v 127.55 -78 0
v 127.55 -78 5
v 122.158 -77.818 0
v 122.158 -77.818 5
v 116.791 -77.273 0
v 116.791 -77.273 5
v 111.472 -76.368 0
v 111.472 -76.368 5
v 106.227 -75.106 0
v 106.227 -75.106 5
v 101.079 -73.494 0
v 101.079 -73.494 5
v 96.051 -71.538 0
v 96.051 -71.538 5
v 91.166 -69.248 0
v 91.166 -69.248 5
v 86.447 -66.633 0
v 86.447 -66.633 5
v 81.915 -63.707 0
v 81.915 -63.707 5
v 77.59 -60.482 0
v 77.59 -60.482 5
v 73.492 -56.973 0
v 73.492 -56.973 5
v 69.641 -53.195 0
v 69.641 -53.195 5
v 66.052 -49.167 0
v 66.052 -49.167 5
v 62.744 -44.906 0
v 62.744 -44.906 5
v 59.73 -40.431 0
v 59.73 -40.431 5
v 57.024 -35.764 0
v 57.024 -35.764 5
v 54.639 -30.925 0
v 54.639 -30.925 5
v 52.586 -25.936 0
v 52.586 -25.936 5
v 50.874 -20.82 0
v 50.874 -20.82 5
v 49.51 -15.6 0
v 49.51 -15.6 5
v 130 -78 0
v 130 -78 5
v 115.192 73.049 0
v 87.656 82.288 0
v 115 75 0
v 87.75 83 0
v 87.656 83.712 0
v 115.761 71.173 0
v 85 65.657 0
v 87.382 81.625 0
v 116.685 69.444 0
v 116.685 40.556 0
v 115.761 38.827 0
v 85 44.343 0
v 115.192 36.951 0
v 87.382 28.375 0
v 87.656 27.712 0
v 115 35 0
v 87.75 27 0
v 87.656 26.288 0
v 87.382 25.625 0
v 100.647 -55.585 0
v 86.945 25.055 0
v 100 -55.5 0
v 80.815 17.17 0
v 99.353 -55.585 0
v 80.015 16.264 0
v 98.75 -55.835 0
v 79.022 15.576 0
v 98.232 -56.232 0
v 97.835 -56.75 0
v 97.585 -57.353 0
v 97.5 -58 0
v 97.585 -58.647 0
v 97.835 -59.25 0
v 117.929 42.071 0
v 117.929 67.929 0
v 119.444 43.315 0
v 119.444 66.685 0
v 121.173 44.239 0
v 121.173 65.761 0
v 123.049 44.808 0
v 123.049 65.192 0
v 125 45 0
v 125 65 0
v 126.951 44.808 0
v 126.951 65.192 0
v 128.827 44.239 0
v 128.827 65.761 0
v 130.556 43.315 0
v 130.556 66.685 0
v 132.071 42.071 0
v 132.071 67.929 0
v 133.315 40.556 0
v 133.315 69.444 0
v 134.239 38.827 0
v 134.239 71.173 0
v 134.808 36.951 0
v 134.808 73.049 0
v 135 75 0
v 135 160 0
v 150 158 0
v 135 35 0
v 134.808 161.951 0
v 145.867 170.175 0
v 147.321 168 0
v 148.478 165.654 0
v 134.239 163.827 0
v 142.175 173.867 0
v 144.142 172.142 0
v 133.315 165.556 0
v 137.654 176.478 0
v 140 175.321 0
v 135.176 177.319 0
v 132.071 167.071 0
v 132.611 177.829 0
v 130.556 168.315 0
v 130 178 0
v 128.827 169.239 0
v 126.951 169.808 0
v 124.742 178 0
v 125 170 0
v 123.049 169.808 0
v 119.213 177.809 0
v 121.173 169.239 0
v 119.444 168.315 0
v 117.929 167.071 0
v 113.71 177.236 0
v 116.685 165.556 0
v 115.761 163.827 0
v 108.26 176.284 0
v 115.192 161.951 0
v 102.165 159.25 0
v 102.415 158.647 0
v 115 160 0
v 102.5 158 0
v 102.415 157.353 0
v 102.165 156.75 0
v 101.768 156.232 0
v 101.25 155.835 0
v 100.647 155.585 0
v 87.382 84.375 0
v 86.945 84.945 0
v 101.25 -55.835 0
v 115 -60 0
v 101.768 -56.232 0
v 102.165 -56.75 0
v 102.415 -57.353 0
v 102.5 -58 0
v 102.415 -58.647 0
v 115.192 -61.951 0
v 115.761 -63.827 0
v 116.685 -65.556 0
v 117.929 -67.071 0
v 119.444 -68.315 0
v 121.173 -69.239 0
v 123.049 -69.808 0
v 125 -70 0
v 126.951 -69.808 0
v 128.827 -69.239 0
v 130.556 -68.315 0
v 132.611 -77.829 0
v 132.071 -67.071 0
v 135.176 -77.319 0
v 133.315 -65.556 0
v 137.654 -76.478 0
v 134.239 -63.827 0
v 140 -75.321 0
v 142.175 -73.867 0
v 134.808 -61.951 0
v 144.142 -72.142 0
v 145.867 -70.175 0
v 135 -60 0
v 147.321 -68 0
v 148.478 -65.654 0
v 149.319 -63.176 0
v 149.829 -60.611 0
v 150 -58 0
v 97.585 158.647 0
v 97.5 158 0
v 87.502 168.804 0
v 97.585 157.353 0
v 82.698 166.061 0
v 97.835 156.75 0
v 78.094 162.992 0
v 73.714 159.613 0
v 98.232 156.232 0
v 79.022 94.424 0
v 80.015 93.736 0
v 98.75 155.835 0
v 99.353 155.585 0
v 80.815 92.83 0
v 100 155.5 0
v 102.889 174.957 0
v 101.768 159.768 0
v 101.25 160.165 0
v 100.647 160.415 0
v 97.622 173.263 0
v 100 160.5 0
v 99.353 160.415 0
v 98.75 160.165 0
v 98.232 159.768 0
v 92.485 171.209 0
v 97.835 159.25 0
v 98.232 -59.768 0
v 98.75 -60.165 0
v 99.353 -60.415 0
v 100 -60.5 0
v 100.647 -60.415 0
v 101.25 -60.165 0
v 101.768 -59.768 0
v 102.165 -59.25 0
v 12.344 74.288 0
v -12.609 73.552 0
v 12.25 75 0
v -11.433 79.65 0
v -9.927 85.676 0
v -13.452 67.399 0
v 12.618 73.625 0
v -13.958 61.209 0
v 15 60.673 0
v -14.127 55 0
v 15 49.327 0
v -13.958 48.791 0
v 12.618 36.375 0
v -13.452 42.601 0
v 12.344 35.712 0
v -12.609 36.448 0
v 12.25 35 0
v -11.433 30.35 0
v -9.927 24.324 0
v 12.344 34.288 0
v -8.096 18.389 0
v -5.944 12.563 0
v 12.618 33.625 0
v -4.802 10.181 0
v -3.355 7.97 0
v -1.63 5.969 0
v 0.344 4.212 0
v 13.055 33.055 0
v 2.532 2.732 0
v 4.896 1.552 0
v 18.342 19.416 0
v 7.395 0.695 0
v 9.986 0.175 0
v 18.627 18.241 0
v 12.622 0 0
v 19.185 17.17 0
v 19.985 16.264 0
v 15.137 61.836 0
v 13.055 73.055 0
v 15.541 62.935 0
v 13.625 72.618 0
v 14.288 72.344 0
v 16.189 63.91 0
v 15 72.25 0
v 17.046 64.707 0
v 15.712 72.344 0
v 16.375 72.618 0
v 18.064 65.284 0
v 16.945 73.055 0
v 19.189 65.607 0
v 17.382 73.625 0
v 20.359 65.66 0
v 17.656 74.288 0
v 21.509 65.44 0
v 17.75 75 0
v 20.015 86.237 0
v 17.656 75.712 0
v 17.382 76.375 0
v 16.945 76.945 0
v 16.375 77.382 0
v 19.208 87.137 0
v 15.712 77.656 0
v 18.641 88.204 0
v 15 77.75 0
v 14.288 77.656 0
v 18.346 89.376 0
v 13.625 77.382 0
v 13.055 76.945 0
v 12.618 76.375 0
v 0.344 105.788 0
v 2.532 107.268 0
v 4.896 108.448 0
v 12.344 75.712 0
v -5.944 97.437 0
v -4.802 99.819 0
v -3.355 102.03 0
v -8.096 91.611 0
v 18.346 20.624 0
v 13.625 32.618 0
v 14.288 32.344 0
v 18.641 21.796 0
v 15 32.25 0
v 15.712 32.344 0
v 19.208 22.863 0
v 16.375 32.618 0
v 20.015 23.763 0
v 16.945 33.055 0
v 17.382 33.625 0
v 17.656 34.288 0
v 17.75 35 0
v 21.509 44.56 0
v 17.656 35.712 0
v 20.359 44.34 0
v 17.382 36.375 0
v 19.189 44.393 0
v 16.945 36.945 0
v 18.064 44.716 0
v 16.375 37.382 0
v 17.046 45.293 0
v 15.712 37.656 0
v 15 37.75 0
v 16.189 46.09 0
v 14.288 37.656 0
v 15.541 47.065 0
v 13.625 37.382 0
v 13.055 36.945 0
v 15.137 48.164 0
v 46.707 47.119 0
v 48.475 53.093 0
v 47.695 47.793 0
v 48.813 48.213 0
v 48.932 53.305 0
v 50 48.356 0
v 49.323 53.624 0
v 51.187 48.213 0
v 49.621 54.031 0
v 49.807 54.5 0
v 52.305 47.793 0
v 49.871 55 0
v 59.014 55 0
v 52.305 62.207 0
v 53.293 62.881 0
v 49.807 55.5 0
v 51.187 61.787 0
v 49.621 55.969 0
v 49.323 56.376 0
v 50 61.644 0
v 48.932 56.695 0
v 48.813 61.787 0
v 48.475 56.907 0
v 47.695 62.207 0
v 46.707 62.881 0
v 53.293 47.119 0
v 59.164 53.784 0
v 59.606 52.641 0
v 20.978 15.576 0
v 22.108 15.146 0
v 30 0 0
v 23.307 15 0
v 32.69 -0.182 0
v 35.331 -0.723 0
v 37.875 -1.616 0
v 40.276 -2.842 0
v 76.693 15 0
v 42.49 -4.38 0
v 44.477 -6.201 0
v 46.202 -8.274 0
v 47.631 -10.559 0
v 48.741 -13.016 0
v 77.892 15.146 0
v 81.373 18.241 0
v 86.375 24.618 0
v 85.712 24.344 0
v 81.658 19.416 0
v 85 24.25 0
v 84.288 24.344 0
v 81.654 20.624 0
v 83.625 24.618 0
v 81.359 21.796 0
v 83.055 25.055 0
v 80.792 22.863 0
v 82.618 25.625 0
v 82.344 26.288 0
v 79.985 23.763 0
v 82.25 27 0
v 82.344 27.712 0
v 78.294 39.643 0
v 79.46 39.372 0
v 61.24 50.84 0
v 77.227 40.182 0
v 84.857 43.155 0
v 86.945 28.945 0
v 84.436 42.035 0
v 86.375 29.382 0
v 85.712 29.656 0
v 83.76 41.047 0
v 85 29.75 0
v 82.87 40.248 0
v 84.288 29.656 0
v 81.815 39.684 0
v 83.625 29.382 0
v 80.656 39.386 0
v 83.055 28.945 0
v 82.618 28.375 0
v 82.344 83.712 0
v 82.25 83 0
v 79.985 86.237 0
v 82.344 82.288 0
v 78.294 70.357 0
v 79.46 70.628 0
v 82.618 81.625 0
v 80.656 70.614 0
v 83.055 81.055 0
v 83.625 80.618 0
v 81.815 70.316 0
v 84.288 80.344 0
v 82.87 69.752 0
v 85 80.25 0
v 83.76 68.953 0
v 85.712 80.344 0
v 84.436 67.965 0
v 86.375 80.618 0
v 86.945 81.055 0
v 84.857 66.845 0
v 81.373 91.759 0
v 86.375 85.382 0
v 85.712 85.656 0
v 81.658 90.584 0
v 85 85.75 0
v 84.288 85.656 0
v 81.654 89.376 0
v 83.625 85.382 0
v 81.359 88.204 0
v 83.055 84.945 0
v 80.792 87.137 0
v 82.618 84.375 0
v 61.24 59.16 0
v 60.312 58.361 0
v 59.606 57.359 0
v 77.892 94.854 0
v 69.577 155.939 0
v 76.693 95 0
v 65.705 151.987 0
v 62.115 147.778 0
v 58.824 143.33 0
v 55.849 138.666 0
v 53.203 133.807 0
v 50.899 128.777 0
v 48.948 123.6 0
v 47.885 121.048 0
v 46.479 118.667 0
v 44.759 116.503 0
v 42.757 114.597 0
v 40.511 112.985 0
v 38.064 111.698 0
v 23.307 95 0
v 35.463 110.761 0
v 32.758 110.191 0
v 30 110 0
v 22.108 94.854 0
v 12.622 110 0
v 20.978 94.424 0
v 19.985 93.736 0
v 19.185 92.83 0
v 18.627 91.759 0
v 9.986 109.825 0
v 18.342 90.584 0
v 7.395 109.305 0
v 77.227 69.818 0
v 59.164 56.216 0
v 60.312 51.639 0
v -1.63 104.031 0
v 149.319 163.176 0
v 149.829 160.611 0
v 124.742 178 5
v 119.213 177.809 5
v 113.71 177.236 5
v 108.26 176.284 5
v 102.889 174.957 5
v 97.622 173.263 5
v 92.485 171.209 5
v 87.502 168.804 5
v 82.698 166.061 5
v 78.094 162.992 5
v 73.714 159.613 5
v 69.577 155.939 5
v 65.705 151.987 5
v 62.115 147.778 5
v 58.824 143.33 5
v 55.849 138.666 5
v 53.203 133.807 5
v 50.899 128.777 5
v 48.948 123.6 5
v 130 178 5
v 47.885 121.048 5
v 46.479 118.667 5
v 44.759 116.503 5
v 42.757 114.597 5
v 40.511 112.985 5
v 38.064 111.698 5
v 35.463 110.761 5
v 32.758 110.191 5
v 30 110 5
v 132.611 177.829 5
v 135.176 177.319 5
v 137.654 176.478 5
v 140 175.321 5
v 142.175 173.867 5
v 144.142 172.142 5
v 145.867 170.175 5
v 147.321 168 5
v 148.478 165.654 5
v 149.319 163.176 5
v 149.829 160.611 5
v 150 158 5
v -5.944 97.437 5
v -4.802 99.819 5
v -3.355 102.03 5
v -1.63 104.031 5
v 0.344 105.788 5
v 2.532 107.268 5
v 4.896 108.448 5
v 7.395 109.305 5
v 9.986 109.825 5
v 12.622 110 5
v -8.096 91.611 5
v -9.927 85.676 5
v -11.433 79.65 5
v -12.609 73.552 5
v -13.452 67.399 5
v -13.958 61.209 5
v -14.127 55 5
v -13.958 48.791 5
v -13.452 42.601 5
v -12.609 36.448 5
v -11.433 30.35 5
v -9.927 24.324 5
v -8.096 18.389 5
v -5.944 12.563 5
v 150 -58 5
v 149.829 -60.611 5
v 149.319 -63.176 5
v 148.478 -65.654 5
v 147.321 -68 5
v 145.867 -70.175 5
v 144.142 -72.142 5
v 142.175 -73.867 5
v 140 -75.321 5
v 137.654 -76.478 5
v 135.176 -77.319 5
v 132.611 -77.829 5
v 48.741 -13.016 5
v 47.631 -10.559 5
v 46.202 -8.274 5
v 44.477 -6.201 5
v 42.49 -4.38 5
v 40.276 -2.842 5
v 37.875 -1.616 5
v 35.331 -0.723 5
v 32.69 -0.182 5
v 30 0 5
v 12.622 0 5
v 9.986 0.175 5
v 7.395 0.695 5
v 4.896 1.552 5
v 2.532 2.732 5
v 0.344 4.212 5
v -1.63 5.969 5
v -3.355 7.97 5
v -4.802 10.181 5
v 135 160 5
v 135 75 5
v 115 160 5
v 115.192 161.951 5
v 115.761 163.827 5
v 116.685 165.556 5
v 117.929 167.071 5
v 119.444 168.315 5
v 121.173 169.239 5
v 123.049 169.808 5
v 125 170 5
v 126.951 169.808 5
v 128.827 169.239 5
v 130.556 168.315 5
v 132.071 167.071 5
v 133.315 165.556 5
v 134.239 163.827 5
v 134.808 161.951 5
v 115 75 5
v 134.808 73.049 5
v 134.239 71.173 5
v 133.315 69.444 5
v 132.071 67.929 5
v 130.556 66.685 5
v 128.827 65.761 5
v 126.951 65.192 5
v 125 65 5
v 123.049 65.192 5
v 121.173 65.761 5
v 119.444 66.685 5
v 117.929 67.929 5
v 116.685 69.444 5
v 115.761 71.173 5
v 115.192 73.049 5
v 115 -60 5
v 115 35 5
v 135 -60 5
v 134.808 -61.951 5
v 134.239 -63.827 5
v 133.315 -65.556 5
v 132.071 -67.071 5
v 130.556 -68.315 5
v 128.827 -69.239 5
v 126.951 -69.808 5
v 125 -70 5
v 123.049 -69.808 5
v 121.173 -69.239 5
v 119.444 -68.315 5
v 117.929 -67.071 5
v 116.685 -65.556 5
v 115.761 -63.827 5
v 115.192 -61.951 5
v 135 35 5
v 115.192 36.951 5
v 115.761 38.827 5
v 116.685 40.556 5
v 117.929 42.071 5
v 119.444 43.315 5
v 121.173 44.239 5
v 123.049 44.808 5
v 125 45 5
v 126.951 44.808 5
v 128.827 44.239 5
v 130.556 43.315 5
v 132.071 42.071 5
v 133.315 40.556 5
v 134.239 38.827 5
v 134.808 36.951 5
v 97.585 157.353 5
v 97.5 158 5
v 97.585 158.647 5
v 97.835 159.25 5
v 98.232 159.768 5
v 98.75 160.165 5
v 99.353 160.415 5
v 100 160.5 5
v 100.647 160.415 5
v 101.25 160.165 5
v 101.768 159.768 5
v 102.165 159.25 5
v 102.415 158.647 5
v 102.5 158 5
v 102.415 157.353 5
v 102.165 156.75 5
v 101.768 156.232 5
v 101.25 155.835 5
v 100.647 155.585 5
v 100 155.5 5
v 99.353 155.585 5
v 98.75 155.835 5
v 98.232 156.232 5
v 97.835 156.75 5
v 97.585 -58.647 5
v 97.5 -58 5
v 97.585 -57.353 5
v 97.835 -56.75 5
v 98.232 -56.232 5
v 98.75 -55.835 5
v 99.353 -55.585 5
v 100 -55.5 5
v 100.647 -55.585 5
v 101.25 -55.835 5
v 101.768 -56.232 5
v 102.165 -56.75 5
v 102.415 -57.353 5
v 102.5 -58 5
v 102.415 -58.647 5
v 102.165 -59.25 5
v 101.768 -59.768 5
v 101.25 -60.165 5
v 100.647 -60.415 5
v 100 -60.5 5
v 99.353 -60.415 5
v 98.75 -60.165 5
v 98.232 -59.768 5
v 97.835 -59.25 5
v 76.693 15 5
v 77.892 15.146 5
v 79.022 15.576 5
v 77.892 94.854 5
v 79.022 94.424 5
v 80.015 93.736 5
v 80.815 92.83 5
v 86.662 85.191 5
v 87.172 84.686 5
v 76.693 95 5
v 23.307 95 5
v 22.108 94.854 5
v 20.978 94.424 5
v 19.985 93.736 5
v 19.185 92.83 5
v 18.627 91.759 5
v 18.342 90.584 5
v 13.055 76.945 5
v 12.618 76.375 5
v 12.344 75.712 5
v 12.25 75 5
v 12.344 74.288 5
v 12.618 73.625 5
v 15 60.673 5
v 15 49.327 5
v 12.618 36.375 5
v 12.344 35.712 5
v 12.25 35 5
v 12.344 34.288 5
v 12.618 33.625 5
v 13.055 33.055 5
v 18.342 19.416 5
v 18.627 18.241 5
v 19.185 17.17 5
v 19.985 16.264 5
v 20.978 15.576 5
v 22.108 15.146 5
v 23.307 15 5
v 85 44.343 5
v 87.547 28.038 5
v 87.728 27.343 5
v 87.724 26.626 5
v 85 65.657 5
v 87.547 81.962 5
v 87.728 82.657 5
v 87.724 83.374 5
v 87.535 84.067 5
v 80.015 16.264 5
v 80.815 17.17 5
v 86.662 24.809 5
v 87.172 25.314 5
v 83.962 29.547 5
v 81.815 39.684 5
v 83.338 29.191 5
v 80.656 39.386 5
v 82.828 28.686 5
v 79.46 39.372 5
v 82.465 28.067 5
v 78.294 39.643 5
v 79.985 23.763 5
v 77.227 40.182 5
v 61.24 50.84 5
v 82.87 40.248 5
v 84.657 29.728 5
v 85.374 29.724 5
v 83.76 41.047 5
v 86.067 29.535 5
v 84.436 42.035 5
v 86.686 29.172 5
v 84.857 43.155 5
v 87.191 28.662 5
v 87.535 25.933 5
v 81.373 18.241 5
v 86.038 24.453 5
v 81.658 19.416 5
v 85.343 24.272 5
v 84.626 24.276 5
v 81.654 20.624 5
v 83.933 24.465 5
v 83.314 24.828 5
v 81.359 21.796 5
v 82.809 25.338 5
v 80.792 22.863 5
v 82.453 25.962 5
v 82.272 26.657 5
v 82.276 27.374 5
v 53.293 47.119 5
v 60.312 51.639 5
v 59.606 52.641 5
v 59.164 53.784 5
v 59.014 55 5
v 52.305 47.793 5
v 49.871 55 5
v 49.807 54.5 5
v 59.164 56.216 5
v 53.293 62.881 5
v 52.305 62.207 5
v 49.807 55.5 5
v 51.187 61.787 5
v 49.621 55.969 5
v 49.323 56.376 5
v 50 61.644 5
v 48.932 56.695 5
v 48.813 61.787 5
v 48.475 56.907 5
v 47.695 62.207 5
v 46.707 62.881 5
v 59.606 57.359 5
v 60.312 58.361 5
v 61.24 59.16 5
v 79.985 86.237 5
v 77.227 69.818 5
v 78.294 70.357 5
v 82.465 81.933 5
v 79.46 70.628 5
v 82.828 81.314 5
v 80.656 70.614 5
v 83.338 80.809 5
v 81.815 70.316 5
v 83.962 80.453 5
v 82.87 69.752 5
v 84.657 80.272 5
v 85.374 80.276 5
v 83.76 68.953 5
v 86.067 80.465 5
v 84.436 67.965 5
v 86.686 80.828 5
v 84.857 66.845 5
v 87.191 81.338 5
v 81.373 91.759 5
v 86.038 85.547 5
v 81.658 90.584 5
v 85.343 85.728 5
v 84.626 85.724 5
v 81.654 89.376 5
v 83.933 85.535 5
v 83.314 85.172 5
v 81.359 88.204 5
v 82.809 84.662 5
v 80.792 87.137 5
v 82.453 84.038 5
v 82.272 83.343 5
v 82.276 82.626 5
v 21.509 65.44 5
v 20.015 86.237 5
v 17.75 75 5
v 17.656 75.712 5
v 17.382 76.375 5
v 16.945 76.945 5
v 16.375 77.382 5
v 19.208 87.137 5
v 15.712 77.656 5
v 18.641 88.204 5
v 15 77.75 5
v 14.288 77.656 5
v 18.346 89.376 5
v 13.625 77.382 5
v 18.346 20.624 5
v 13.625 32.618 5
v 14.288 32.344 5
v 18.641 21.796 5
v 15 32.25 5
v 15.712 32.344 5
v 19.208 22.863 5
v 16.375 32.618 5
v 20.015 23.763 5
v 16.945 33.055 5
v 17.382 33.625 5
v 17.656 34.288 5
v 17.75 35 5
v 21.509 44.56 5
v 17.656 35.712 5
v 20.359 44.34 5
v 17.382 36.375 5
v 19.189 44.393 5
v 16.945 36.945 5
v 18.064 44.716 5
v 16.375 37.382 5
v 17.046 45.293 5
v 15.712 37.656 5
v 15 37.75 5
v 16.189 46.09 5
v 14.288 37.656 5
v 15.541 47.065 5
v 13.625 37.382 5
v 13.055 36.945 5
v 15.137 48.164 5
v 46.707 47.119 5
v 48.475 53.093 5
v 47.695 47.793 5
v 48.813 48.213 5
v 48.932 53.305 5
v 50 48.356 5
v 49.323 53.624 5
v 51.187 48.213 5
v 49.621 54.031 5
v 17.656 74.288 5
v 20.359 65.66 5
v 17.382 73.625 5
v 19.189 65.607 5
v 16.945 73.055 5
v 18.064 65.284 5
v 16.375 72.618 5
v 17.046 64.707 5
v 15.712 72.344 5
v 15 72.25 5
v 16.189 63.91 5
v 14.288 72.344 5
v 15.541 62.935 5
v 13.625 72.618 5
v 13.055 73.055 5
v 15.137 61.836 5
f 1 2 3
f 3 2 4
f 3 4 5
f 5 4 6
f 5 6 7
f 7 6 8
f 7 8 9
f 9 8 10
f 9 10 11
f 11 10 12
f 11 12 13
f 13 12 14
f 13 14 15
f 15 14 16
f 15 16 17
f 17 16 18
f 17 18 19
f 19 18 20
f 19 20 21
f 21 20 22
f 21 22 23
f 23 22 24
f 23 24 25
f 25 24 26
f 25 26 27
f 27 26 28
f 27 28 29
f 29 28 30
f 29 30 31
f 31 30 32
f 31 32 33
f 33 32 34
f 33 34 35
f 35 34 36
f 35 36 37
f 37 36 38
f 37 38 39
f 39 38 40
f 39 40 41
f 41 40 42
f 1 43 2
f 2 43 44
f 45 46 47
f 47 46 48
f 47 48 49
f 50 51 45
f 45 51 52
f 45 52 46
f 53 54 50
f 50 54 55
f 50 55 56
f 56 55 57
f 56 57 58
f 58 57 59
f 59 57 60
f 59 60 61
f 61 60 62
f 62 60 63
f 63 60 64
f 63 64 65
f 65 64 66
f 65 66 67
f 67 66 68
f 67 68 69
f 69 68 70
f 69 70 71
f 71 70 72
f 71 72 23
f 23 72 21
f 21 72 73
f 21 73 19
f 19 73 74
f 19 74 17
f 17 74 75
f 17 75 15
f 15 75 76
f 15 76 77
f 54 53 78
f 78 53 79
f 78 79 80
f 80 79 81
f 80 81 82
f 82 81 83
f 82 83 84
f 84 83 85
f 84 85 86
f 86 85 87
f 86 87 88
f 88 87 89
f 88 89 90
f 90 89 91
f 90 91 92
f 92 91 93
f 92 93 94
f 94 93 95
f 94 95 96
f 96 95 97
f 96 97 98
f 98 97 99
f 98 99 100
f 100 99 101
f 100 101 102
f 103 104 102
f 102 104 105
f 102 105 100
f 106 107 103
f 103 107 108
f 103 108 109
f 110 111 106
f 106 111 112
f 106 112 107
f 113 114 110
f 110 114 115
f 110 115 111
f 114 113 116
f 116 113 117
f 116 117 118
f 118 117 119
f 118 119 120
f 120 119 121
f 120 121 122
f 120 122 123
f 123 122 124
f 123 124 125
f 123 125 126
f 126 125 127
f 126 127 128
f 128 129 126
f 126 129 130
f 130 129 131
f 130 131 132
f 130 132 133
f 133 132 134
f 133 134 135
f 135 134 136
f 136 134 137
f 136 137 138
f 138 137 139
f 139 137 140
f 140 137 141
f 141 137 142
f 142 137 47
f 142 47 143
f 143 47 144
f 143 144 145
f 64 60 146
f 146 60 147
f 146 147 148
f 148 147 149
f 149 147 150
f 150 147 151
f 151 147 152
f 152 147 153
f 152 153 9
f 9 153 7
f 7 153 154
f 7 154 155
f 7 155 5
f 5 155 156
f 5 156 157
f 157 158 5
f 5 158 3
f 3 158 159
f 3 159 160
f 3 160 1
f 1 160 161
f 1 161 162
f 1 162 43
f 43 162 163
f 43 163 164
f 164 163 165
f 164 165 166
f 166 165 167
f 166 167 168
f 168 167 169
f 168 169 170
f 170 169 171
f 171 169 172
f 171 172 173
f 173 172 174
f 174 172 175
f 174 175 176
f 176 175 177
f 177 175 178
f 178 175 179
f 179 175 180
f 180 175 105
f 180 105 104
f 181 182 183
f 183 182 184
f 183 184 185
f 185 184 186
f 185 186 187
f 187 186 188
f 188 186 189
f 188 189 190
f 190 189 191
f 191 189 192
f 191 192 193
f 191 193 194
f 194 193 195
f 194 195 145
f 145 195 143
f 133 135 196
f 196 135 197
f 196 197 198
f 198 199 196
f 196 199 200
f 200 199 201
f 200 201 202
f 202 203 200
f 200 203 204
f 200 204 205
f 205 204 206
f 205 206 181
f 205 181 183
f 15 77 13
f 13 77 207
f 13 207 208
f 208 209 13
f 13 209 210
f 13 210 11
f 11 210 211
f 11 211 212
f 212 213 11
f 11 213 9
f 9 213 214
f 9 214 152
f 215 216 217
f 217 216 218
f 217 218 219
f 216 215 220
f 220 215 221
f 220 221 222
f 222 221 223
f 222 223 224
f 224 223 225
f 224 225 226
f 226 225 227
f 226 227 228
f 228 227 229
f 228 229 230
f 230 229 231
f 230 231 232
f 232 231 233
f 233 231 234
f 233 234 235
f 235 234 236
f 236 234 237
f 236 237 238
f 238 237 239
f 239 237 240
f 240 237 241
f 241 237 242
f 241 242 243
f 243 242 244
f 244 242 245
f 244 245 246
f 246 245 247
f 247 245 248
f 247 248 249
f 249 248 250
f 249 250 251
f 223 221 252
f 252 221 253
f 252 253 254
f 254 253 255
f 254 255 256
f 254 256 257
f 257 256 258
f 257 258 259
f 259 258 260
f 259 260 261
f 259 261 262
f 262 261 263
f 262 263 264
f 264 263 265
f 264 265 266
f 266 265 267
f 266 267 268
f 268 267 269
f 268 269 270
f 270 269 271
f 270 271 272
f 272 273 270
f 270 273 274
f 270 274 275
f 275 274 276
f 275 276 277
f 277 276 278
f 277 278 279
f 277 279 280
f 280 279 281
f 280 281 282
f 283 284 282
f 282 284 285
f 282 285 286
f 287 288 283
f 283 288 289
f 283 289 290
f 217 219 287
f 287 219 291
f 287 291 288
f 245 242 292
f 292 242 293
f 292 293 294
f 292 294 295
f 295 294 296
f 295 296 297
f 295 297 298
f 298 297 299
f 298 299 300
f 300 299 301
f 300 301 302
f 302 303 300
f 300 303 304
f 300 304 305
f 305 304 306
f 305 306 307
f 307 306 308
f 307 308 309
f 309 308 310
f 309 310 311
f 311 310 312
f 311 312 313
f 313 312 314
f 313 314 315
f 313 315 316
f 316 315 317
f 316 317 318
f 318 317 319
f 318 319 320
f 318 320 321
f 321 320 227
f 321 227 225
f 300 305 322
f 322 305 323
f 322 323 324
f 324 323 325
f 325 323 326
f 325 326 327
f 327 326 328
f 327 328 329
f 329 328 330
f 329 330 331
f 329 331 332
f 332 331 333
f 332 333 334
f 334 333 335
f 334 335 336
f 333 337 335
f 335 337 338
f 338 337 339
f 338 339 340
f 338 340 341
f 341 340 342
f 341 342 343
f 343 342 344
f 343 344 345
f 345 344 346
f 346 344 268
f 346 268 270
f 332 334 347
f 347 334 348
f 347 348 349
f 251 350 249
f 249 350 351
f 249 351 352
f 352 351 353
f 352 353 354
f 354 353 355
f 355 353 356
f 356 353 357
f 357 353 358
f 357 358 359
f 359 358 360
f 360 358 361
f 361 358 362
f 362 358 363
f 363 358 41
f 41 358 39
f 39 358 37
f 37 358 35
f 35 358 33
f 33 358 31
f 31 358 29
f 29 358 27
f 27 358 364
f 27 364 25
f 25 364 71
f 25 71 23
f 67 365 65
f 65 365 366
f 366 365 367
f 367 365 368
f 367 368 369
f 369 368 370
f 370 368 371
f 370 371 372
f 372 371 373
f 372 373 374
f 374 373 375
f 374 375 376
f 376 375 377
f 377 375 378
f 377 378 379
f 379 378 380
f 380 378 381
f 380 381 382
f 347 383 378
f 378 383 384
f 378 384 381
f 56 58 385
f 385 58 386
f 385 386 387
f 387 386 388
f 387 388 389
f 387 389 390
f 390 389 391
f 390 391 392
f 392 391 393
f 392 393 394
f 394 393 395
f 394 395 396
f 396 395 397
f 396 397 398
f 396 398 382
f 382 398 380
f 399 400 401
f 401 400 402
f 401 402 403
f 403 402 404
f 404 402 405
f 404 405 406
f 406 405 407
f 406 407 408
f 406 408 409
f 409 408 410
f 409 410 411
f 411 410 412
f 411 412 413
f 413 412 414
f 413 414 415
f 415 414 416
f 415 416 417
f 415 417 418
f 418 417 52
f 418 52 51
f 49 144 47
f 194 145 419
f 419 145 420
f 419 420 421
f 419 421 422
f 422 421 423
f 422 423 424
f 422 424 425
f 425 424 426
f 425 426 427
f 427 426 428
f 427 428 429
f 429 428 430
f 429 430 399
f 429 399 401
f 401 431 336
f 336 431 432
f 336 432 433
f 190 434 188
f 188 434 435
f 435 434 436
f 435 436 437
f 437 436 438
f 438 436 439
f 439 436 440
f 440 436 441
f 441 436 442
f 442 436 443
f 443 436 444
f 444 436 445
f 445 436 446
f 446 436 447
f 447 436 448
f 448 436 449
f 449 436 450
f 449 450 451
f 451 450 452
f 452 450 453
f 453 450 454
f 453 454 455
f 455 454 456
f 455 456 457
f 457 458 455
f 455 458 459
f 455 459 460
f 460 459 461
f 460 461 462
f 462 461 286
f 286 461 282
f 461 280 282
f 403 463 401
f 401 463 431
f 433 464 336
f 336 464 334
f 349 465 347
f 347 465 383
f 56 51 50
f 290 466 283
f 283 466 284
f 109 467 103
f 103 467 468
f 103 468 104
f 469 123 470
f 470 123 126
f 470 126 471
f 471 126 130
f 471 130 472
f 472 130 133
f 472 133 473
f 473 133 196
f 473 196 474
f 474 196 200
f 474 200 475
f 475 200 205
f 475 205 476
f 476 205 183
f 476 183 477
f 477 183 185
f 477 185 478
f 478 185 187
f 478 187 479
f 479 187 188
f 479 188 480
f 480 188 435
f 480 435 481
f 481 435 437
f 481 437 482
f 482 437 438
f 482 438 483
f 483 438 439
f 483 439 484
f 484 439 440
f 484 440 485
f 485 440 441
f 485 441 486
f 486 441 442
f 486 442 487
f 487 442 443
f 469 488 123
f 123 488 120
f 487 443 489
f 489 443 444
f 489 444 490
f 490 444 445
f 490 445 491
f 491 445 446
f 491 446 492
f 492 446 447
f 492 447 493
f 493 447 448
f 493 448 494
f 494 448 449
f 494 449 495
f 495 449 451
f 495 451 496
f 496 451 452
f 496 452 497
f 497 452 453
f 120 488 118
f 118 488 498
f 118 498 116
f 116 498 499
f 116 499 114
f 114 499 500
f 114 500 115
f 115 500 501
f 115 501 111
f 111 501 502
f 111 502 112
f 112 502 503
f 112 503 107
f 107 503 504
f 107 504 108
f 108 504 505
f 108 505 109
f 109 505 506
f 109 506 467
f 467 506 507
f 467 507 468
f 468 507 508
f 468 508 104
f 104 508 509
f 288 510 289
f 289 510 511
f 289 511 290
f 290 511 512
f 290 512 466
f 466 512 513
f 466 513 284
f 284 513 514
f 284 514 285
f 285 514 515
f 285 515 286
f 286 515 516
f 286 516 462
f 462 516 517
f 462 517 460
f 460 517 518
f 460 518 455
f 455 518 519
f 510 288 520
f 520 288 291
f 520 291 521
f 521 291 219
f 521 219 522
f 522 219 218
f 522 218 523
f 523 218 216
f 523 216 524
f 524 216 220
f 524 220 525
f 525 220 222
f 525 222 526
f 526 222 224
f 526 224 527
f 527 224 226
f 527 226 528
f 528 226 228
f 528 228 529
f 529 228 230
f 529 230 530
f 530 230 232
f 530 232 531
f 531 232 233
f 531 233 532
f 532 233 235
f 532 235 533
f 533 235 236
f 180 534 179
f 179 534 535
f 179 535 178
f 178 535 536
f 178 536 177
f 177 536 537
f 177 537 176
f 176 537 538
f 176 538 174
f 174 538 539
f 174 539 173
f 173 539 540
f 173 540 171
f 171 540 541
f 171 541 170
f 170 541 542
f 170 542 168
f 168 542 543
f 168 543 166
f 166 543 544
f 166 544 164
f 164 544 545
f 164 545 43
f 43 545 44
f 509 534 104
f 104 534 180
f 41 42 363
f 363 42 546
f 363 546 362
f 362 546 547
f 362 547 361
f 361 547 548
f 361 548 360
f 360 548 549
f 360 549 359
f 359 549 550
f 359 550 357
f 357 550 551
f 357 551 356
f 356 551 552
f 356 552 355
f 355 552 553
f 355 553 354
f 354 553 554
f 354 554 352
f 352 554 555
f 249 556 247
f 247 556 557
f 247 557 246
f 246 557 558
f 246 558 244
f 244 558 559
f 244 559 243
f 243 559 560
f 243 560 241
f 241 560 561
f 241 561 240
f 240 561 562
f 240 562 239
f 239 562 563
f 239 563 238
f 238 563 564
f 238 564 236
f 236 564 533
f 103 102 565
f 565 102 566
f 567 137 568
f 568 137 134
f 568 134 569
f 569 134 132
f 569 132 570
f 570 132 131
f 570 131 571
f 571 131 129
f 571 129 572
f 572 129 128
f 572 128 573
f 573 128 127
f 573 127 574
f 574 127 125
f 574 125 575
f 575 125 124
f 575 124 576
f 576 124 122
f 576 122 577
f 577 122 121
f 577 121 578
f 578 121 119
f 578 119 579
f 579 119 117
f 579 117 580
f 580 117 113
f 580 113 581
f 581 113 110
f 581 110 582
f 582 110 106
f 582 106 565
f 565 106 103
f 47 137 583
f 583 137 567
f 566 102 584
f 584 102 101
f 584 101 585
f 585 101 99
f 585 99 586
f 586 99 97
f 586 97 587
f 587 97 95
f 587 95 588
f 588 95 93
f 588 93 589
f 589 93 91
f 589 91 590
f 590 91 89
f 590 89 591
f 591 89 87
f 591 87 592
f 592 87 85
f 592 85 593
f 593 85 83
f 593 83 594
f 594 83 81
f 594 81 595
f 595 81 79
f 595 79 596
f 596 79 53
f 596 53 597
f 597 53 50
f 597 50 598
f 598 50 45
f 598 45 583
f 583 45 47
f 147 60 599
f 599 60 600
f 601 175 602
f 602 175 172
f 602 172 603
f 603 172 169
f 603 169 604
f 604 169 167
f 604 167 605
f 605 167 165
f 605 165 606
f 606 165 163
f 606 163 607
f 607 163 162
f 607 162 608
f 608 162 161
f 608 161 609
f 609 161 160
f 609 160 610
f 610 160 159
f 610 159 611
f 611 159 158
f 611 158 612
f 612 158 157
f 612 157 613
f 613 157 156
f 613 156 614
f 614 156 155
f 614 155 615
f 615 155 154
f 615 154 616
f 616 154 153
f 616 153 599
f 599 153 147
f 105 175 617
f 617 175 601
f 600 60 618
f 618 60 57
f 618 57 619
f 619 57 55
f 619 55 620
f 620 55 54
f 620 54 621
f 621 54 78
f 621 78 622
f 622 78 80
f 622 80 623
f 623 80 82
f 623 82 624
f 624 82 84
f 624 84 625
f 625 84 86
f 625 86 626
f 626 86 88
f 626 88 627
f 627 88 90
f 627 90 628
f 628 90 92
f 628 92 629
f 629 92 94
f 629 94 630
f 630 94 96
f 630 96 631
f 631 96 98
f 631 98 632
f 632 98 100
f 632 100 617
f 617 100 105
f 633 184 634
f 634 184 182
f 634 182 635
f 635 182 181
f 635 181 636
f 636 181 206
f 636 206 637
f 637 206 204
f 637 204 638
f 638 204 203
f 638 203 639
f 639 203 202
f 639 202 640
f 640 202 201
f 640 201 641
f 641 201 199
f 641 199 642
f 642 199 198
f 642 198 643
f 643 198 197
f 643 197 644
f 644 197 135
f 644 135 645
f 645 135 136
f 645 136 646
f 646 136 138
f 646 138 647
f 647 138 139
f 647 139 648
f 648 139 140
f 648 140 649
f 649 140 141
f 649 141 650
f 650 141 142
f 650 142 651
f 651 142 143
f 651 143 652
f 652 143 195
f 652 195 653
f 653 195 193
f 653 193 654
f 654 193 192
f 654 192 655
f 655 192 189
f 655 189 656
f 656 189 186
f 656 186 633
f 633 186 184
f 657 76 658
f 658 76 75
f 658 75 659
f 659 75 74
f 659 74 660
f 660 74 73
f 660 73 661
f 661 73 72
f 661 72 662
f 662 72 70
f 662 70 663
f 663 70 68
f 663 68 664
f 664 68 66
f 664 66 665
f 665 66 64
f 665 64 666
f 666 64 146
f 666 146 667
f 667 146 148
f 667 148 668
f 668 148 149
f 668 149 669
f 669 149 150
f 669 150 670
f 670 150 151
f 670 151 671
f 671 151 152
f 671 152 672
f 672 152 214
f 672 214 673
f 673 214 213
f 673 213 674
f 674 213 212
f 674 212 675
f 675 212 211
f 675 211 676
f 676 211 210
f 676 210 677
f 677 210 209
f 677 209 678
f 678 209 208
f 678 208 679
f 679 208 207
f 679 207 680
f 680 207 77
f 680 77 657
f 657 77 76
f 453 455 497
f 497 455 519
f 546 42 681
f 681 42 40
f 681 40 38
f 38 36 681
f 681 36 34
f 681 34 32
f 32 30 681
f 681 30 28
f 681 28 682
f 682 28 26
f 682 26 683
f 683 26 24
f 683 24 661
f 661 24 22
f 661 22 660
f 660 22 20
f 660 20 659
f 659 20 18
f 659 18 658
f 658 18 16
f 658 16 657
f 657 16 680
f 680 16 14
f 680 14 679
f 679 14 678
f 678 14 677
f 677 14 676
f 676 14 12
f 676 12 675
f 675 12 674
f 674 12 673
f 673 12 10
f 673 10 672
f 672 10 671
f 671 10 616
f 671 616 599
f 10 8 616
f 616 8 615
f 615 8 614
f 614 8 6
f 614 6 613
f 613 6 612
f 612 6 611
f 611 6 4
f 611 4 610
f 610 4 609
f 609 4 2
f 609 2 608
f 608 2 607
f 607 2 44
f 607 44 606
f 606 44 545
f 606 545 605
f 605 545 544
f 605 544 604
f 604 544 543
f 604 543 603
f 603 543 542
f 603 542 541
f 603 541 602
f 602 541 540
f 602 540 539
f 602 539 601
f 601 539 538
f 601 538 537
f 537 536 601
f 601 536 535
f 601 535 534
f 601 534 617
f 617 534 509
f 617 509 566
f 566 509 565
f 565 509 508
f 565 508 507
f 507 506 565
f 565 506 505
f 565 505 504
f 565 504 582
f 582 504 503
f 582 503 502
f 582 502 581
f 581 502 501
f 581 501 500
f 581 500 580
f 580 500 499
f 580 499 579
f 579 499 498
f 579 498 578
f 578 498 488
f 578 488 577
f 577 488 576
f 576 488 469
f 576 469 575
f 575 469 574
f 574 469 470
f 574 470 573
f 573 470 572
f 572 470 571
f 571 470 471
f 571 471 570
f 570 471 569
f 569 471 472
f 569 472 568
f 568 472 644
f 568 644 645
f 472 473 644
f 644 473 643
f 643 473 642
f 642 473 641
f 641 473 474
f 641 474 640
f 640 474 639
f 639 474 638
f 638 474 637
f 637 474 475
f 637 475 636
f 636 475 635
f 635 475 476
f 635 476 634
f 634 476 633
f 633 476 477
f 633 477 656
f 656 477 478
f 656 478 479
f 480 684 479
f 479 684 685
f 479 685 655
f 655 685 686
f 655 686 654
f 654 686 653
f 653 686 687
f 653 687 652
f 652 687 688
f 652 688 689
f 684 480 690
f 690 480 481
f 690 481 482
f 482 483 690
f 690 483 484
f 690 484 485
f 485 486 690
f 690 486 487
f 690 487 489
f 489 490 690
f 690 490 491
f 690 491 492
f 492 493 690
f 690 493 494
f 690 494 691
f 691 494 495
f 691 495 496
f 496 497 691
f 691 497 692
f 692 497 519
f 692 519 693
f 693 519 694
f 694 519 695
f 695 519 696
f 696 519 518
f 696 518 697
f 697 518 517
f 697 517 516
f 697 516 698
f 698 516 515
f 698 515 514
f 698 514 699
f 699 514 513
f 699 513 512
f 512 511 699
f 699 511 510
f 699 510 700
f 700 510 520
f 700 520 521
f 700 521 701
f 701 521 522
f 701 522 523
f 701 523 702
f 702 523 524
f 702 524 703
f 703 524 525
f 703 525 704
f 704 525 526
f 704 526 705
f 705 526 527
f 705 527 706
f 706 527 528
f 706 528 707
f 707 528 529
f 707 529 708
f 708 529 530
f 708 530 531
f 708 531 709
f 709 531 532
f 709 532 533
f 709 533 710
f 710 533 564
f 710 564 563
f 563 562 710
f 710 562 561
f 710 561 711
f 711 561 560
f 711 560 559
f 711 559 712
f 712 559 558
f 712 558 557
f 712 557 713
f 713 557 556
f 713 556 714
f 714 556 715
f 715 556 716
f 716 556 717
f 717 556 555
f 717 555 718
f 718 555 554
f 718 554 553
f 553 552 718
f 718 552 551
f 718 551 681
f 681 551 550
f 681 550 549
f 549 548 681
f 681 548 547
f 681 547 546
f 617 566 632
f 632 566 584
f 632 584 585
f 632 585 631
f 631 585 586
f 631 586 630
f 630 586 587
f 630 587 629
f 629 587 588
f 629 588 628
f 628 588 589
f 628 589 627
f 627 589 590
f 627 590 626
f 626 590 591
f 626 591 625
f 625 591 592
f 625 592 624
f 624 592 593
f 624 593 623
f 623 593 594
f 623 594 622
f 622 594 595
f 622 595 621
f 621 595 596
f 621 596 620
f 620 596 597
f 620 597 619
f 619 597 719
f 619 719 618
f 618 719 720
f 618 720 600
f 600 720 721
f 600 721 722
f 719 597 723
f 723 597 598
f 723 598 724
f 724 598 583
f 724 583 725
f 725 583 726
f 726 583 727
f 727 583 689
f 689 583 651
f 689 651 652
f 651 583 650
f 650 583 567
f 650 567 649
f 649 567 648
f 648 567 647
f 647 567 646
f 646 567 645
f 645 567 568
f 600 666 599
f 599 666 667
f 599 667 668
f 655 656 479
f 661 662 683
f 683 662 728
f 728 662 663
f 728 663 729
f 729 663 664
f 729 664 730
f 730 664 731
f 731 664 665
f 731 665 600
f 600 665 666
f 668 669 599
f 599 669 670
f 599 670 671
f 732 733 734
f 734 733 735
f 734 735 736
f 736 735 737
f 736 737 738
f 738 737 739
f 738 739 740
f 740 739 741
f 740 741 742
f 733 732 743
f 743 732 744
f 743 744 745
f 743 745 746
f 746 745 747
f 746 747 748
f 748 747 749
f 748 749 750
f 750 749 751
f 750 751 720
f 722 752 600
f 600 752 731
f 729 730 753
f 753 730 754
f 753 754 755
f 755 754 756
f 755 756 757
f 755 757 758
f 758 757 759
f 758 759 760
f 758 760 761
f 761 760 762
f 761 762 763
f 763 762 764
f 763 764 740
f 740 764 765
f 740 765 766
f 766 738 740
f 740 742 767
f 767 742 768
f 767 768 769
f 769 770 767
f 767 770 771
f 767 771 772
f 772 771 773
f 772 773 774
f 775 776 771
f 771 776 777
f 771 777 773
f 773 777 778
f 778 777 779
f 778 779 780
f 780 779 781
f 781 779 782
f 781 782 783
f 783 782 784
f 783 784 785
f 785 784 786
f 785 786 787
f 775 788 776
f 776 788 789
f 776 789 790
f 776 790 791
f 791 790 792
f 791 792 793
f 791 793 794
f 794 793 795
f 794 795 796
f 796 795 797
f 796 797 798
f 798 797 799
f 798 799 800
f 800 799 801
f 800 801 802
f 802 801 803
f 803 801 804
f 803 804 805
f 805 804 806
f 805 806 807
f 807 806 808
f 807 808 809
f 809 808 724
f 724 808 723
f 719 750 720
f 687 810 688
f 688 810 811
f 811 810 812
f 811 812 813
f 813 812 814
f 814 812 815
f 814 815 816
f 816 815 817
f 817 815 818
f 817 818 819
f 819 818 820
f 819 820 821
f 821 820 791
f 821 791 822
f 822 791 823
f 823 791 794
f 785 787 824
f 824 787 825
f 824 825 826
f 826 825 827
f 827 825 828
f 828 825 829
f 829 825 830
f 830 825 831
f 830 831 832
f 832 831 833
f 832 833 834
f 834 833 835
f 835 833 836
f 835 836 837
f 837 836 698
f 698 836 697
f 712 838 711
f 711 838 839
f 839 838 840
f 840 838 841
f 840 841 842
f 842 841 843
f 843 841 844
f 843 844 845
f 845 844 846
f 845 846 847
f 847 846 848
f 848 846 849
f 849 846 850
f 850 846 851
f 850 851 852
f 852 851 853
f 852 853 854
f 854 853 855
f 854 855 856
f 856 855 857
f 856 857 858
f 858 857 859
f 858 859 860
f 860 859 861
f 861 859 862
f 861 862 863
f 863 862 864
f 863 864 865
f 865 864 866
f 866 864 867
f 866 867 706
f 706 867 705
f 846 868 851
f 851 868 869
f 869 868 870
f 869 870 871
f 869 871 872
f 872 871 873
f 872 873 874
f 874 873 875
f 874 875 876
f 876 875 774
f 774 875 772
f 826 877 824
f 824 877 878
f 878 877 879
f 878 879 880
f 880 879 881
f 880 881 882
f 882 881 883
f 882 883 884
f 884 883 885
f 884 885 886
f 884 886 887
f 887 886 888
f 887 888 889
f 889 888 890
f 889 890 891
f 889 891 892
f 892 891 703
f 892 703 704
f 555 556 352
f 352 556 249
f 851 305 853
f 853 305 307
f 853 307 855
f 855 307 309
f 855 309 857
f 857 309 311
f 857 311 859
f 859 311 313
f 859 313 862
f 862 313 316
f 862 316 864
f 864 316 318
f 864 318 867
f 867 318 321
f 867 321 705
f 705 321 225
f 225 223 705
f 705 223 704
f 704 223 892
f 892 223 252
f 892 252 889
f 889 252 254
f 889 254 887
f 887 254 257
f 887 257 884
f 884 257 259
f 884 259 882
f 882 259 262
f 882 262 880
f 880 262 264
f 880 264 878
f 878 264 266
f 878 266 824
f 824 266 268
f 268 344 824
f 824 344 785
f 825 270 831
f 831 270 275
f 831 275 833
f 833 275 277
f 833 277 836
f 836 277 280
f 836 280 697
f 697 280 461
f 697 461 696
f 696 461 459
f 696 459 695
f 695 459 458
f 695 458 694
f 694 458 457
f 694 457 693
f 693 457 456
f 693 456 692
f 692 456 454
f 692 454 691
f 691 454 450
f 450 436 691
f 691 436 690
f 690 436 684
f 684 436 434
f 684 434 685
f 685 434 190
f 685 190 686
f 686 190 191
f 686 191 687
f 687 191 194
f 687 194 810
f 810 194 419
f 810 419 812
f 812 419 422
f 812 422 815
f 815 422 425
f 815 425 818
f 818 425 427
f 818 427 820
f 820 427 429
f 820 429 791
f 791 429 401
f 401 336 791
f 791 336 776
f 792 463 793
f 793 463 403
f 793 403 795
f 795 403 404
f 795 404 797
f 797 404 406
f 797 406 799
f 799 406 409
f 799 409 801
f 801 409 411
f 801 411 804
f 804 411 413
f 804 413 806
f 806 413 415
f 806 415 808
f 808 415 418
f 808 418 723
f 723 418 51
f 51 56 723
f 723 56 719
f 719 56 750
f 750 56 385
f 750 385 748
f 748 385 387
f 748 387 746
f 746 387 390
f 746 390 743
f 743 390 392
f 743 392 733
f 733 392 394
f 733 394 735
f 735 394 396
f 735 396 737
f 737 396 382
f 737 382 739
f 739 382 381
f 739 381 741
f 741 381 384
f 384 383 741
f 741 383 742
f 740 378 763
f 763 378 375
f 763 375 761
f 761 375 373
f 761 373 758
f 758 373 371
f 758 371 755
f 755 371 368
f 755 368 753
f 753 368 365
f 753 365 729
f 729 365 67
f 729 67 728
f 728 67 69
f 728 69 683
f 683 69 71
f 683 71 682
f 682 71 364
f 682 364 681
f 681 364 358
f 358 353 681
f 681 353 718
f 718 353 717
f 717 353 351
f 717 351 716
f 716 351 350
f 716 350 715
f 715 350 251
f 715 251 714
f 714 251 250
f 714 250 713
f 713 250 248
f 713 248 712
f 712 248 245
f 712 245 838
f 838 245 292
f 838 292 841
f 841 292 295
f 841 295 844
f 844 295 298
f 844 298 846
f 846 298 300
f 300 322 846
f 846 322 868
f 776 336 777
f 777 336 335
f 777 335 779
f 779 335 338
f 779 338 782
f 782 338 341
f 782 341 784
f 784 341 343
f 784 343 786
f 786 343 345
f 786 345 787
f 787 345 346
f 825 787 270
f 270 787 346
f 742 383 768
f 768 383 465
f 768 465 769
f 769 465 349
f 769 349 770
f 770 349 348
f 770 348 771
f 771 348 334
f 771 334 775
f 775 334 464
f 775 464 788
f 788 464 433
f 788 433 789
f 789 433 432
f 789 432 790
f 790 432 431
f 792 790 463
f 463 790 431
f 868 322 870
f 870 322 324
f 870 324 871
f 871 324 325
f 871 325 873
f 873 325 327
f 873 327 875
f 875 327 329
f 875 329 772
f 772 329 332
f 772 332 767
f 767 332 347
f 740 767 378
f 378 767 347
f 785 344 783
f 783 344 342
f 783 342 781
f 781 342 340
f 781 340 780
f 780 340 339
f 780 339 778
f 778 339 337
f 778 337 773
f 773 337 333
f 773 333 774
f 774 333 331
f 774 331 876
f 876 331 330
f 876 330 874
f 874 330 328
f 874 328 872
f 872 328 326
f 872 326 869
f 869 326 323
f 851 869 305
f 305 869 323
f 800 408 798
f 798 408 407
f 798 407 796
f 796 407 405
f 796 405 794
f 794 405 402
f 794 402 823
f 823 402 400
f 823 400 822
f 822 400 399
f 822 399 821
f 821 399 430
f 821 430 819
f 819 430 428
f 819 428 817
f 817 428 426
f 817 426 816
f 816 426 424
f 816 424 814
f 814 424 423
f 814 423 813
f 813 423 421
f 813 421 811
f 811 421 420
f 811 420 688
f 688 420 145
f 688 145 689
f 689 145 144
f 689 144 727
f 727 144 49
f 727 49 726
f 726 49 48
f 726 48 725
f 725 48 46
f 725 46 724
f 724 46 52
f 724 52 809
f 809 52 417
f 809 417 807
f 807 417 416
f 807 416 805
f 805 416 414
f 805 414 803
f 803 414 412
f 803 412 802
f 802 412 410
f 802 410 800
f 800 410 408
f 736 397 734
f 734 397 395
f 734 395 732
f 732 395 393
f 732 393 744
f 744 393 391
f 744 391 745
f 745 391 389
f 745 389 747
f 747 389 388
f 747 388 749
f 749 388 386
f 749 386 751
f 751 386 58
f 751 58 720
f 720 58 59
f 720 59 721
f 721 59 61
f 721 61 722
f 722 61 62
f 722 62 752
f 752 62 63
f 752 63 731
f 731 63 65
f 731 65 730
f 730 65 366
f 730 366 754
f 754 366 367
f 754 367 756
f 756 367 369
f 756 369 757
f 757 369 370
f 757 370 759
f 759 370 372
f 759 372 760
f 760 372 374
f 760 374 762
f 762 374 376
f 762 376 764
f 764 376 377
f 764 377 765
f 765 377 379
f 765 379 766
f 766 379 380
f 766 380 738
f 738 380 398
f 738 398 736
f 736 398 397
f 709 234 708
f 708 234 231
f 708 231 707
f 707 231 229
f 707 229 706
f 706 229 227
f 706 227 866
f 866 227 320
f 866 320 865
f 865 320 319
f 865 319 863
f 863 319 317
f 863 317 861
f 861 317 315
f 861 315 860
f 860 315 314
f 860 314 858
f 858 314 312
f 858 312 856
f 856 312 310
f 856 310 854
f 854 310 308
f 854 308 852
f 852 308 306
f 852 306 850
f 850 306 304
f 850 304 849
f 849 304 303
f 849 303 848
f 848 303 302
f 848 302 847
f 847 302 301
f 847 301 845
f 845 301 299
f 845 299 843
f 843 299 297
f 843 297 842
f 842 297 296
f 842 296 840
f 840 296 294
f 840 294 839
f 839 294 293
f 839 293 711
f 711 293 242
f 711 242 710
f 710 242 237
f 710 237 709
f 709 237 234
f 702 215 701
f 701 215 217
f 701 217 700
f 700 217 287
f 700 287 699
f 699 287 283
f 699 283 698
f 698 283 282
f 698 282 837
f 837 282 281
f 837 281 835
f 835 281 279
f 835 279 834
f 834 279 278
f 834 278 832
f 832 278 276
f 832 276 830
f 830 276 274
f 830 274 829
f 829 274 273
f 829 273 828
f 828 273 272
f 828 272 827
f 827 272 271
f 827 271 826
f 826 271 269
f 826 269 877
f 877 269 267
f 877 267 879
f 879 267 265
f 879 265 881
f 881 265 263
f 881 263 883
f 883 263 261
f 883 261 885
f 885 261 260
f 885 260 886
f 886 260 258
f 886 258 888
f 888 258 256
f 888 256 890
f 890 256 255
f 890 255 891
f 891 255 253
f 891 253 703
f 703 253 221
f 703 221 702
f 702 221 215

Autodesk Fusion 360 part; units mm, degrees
sketch "Sketch1" plane through (0, 0, 0) normal (0, 0, 1) x (1, 0, 0)
  line L0 (0, 0) -> (100, 0)
  line L1 (100, 0) -> (100, 110)
  line L2 (100, 110) -> (0, 110)
  line L3 (0, 110) -> (0, 0)
  circle A0 centre (15, 35) radius 2.75
  circle A1 centre (15, 75) radius 2.75
  circle A2 centre (85, 83) radius 2.75
  circle A3 centre (85, 27) radius 2.75
  line L4 (85, 35) -> (85, 75)
  line L5 (15, 67.5) -> (15, 42.5)
  line L6 (85, 35) -> (55, 55)
  line L7 (85, 75) -> (55, 55)
  line L8 (50, 50) -> (10, 15)
  line L9 (10, 15) -> (90, 15)
  line L10 (90, 15) -> (50, 50)
  line L11 (50, 60) -> (90, 95)
  line L12 (90, 95) -> (10, 95)
  line L13 (10, 95) -> (50, 60)
  line L14 (15, 42.5) -> (54.5, 55)
  line L15 (54.5, 55) -> (15, 67.5)
  dimension "d1" = 5.5
  dimension "d2" = 5.5
  dimension "d3" = 5.5
  dimension "d4" = 5.5
  dimension "d5" = 40
  dimension "d6" = 56
  dimension "d7" = 70
  dimension "d9" = 100
  dimension "d10" = 110
  dimension "d11" = 27
  dimension "d12" = 15
  dimension "d63" = 15
  dimension "d66" = 15
  dimension "d67" = 7.5
  dimension "d68" = 7.5
  dimension "d72" = 15
  dimension "d73" = 15
  dimension "d76" = 50
  dimension "d77" = 10
  dimension "d78" = 10
  dimension "d80" = 56.31
  dimension "d81" = 56.31
  dimension "d140" = 10
  dimension "d141" = 41.186
  dimension "d142" = 41.186
  dimension "d143" = 72.44
  dimension "d152" = 35
  dimension "d153" = 35
  dimension "d154" = 35
extrude "Extrude13" add sketch "Sketch1" along normal blind 5
sketch "Sketch2" plane through (0, 110, 0) normal (0, 1, 0) x (-1, 0, 0)
  line L0 (-100, 0) -> (0, 0)
  line L1 (0, 0) -> (0, 10)
  line L2 (0, 10) -> (-100, 10)
  line L3 (-100, 10) -> (-100, 0)
  arc A0 (-29.9676, 8) -> (-29.9676, 14) centre (-29.9676, 11) ccw
  line L4 (-75.9121, 43) -> (-76, 43)
  line L5 (-29.9676, 8) -> (-33.1608, 8)
  line L6 (-29.9676, 14) -> (-69.9676, 14)
  line L7 (-69.9676, 8) -> (-29.9676, 8)
  arc A1 (-69.9676, 17) -> (-75.9676, 11) centre (-69.9676, 11) ccw
  line L8 (-69.9676, 17) -> (-29.9676, 17)
  line L9 (-76, 37.0055) -> (-75.9676, 11)
  arc A2 (-69.9676, 14) -> (-69.9676, 8) centre (-69.9676, 11) ccw
  arc A3 (-23.9676, 11) -> (-29.9676, 17) centre (-29.9676, 11) ccw
  line L10 (-23.9676, 5) -> (-75.9676, 5)
  line L11 (-75.9676, 5) -> (-83.3383, 5)
  line L12 (-23.9676, 5) -> (-17.9511, 5)
  arc A4 (-83.3383, 5) -> (-75.9676, 11) centre (-83.3383, 12.5273) ccw
  arc A5 (-23.9676, 11) -> (-17.9511, 5) centre (-16.0025, 12.9705) ccw
  line L13 (0, 5) -> (-100, 5)
  dimension "d108" = 6
  dimension "d109" = 6
  dimension "d110" = 3
  dimension "d111" = 40
  dimension "d112" = 6
  dimension "d115" = 6
  dimension "d116" = 40
  dimension "d119" = 6
  dimension "d120" = 52
  dimension "d121" = 3
  dimension "d135" = 12
extrude "Extrude14" add sketch "Sketch2" against normal blind 110 contours L2 A0 L5 L7 A2 L10 L11 L12 A4 A5 L13 | L2 A0 L6 A1 L8 A2 A3 A4 A5
sketch "Sketch6" plane through (0, 0, 22) normal (0, 0, 1) x (-1, 0, 0)
  line L0 (-70.0055, -110) -> (-30, -110)
  line L1 (-30, -110) -> (-30, 0)
  line L2 (-30, 0) -> (-70.0055, 0)
  line L3 (-70.0055, 0) -> (-70.0055, -110)
  line L4 (-10, -10) -> (-90, -10)
  line L5 (-90, -10) -> (-90, -100)
  line L6 (-90, -100) -> (-10, -100)
  line L7 (-10, -100) -> (-10, -10)
  line L8 (-69.9676, -110) -> (-29.9676, -110)
  line L9 (-100, 0) -> (-100, -110)
  line L10 (0, -110) -> (0, 0)
  dimension "d127" = 10
  dimension "d128" = 10
  dimension "d129" = 10
  dimension "d130" = 10
extrude "Extrude15" cut sketch "Sketch6" against normal blind 17 contours L3 L4 L5 L6 | L1 L3 L4 L6 | L1 L4 L6 L7
fillet "Fillet4" radius 2 1 edges at (54.5, 55, 2.5)
fillet "Fillet5" radius 5 3 edges at (50, 50, 2.5) (55, 55, 2.5) (50, 60, 2.5)
fillet "Fillet6" radius 5 6 edges at (10, 15, 2.5) (90, 15, 2.5) (85, 35, 2.5) (85, 75, 2.5) (90, 95, 2.5) (10, 95, 2.5)
fillet "Fillet7" radius 5 2 edges at (15, 67.5, 2.5) (15, 42.5, 2.5)
sketch "Sketch7" plane through (0, 0, 0) normal (0, 1, 0) x (1, 0, 0)
  line L0 (90, -5) -> (3.9374, -5)
  line L1 (3.9374, -5) -> (3.9374, -36.9823)
  line L2 (3.9374, -36.9823) -> (90, -36.9823)
  line L3 (90, -36.9823) -> (90, -5)
extrude "Extrude16" cut sketch "Sketch7" along normal blind 130
sketch "Sketch8" plane through (0, 0, 0) normal (0, 0, 1) x (1, 0, 0)
  circle A0 centre (100, 158) radius 2.5
  circle A1 centre (100, -58) radius 2.5
  line L0 (0, 0) -> (100, 0)
  line L1 (50, 110) -> (50, 178)
  line L2 (50, 178) -> (150, 178)
  line L3 (150, 178) -> (150, -78)
  line L4 (150, -78) -> (50, -78)
  line L5 (50, -78) -> (50, 0)
  line L6 (100, 0) -> (50, 0)
  line L7 (100, 0) -> (100, 110)
  line L8 (100, 110) -> (50, 110)
  line L9 (0, 0) -> (0, 110)
  arc A2 (0, 110) -> (0, 0) centre (100, 55) ccw
  arc A3 (97.7575, -59.1051) -> (102.2425, -59.1051) centre (100, 55) ccw
  line L10 (115, 160) -> (115, -60)
  line L11 (135, -60) -> (135, 160)
  arc A4 (135, 160) -> (115, 160) centre (125, 160) ccw
  arc A5 (115, -60) -> (135, -60) centre (125, -60) ccw
  arc A6 (135, 35) -> (115, 35) centre (125, 35) ccw
  arc A7 (115, 75) -> (135, 75) centre (125, 75) ccw
  point P0 (100, 110)
  dimension "d157" = 5
  dimension "d158" = 5
  dimension "d159" = 216
  dimension "d160" = 158
  dimension "d161" = 100
  dimension "d162" = 20
  dimension "d163" = 20
  dimension "d164" = 100
  dimension "d167" = 20
  dimension "d168" = 25
extrude "Extrude20" add sketch "Sketch8" along normal blind 5 contours L0 L1 L2 L3 L4 L5 L6 L7 L8 | L9 A2 | L10 L11 A6 A7
fillet "Fillet10" radius 20 6 edges at (0, 0, 2.5) (50, 0, 2.5) (150, -78, 2.5) (0, 110, 2.5) (150, 178, 2.5) (50, 110, 2.5)
fillet "Fillet11" radius 80 2 edges at (50, 178, 2.5) (50, -78, 2.5)
equation "d160 = ( 216 / 2 ) * 1 mm + 50 mm"
